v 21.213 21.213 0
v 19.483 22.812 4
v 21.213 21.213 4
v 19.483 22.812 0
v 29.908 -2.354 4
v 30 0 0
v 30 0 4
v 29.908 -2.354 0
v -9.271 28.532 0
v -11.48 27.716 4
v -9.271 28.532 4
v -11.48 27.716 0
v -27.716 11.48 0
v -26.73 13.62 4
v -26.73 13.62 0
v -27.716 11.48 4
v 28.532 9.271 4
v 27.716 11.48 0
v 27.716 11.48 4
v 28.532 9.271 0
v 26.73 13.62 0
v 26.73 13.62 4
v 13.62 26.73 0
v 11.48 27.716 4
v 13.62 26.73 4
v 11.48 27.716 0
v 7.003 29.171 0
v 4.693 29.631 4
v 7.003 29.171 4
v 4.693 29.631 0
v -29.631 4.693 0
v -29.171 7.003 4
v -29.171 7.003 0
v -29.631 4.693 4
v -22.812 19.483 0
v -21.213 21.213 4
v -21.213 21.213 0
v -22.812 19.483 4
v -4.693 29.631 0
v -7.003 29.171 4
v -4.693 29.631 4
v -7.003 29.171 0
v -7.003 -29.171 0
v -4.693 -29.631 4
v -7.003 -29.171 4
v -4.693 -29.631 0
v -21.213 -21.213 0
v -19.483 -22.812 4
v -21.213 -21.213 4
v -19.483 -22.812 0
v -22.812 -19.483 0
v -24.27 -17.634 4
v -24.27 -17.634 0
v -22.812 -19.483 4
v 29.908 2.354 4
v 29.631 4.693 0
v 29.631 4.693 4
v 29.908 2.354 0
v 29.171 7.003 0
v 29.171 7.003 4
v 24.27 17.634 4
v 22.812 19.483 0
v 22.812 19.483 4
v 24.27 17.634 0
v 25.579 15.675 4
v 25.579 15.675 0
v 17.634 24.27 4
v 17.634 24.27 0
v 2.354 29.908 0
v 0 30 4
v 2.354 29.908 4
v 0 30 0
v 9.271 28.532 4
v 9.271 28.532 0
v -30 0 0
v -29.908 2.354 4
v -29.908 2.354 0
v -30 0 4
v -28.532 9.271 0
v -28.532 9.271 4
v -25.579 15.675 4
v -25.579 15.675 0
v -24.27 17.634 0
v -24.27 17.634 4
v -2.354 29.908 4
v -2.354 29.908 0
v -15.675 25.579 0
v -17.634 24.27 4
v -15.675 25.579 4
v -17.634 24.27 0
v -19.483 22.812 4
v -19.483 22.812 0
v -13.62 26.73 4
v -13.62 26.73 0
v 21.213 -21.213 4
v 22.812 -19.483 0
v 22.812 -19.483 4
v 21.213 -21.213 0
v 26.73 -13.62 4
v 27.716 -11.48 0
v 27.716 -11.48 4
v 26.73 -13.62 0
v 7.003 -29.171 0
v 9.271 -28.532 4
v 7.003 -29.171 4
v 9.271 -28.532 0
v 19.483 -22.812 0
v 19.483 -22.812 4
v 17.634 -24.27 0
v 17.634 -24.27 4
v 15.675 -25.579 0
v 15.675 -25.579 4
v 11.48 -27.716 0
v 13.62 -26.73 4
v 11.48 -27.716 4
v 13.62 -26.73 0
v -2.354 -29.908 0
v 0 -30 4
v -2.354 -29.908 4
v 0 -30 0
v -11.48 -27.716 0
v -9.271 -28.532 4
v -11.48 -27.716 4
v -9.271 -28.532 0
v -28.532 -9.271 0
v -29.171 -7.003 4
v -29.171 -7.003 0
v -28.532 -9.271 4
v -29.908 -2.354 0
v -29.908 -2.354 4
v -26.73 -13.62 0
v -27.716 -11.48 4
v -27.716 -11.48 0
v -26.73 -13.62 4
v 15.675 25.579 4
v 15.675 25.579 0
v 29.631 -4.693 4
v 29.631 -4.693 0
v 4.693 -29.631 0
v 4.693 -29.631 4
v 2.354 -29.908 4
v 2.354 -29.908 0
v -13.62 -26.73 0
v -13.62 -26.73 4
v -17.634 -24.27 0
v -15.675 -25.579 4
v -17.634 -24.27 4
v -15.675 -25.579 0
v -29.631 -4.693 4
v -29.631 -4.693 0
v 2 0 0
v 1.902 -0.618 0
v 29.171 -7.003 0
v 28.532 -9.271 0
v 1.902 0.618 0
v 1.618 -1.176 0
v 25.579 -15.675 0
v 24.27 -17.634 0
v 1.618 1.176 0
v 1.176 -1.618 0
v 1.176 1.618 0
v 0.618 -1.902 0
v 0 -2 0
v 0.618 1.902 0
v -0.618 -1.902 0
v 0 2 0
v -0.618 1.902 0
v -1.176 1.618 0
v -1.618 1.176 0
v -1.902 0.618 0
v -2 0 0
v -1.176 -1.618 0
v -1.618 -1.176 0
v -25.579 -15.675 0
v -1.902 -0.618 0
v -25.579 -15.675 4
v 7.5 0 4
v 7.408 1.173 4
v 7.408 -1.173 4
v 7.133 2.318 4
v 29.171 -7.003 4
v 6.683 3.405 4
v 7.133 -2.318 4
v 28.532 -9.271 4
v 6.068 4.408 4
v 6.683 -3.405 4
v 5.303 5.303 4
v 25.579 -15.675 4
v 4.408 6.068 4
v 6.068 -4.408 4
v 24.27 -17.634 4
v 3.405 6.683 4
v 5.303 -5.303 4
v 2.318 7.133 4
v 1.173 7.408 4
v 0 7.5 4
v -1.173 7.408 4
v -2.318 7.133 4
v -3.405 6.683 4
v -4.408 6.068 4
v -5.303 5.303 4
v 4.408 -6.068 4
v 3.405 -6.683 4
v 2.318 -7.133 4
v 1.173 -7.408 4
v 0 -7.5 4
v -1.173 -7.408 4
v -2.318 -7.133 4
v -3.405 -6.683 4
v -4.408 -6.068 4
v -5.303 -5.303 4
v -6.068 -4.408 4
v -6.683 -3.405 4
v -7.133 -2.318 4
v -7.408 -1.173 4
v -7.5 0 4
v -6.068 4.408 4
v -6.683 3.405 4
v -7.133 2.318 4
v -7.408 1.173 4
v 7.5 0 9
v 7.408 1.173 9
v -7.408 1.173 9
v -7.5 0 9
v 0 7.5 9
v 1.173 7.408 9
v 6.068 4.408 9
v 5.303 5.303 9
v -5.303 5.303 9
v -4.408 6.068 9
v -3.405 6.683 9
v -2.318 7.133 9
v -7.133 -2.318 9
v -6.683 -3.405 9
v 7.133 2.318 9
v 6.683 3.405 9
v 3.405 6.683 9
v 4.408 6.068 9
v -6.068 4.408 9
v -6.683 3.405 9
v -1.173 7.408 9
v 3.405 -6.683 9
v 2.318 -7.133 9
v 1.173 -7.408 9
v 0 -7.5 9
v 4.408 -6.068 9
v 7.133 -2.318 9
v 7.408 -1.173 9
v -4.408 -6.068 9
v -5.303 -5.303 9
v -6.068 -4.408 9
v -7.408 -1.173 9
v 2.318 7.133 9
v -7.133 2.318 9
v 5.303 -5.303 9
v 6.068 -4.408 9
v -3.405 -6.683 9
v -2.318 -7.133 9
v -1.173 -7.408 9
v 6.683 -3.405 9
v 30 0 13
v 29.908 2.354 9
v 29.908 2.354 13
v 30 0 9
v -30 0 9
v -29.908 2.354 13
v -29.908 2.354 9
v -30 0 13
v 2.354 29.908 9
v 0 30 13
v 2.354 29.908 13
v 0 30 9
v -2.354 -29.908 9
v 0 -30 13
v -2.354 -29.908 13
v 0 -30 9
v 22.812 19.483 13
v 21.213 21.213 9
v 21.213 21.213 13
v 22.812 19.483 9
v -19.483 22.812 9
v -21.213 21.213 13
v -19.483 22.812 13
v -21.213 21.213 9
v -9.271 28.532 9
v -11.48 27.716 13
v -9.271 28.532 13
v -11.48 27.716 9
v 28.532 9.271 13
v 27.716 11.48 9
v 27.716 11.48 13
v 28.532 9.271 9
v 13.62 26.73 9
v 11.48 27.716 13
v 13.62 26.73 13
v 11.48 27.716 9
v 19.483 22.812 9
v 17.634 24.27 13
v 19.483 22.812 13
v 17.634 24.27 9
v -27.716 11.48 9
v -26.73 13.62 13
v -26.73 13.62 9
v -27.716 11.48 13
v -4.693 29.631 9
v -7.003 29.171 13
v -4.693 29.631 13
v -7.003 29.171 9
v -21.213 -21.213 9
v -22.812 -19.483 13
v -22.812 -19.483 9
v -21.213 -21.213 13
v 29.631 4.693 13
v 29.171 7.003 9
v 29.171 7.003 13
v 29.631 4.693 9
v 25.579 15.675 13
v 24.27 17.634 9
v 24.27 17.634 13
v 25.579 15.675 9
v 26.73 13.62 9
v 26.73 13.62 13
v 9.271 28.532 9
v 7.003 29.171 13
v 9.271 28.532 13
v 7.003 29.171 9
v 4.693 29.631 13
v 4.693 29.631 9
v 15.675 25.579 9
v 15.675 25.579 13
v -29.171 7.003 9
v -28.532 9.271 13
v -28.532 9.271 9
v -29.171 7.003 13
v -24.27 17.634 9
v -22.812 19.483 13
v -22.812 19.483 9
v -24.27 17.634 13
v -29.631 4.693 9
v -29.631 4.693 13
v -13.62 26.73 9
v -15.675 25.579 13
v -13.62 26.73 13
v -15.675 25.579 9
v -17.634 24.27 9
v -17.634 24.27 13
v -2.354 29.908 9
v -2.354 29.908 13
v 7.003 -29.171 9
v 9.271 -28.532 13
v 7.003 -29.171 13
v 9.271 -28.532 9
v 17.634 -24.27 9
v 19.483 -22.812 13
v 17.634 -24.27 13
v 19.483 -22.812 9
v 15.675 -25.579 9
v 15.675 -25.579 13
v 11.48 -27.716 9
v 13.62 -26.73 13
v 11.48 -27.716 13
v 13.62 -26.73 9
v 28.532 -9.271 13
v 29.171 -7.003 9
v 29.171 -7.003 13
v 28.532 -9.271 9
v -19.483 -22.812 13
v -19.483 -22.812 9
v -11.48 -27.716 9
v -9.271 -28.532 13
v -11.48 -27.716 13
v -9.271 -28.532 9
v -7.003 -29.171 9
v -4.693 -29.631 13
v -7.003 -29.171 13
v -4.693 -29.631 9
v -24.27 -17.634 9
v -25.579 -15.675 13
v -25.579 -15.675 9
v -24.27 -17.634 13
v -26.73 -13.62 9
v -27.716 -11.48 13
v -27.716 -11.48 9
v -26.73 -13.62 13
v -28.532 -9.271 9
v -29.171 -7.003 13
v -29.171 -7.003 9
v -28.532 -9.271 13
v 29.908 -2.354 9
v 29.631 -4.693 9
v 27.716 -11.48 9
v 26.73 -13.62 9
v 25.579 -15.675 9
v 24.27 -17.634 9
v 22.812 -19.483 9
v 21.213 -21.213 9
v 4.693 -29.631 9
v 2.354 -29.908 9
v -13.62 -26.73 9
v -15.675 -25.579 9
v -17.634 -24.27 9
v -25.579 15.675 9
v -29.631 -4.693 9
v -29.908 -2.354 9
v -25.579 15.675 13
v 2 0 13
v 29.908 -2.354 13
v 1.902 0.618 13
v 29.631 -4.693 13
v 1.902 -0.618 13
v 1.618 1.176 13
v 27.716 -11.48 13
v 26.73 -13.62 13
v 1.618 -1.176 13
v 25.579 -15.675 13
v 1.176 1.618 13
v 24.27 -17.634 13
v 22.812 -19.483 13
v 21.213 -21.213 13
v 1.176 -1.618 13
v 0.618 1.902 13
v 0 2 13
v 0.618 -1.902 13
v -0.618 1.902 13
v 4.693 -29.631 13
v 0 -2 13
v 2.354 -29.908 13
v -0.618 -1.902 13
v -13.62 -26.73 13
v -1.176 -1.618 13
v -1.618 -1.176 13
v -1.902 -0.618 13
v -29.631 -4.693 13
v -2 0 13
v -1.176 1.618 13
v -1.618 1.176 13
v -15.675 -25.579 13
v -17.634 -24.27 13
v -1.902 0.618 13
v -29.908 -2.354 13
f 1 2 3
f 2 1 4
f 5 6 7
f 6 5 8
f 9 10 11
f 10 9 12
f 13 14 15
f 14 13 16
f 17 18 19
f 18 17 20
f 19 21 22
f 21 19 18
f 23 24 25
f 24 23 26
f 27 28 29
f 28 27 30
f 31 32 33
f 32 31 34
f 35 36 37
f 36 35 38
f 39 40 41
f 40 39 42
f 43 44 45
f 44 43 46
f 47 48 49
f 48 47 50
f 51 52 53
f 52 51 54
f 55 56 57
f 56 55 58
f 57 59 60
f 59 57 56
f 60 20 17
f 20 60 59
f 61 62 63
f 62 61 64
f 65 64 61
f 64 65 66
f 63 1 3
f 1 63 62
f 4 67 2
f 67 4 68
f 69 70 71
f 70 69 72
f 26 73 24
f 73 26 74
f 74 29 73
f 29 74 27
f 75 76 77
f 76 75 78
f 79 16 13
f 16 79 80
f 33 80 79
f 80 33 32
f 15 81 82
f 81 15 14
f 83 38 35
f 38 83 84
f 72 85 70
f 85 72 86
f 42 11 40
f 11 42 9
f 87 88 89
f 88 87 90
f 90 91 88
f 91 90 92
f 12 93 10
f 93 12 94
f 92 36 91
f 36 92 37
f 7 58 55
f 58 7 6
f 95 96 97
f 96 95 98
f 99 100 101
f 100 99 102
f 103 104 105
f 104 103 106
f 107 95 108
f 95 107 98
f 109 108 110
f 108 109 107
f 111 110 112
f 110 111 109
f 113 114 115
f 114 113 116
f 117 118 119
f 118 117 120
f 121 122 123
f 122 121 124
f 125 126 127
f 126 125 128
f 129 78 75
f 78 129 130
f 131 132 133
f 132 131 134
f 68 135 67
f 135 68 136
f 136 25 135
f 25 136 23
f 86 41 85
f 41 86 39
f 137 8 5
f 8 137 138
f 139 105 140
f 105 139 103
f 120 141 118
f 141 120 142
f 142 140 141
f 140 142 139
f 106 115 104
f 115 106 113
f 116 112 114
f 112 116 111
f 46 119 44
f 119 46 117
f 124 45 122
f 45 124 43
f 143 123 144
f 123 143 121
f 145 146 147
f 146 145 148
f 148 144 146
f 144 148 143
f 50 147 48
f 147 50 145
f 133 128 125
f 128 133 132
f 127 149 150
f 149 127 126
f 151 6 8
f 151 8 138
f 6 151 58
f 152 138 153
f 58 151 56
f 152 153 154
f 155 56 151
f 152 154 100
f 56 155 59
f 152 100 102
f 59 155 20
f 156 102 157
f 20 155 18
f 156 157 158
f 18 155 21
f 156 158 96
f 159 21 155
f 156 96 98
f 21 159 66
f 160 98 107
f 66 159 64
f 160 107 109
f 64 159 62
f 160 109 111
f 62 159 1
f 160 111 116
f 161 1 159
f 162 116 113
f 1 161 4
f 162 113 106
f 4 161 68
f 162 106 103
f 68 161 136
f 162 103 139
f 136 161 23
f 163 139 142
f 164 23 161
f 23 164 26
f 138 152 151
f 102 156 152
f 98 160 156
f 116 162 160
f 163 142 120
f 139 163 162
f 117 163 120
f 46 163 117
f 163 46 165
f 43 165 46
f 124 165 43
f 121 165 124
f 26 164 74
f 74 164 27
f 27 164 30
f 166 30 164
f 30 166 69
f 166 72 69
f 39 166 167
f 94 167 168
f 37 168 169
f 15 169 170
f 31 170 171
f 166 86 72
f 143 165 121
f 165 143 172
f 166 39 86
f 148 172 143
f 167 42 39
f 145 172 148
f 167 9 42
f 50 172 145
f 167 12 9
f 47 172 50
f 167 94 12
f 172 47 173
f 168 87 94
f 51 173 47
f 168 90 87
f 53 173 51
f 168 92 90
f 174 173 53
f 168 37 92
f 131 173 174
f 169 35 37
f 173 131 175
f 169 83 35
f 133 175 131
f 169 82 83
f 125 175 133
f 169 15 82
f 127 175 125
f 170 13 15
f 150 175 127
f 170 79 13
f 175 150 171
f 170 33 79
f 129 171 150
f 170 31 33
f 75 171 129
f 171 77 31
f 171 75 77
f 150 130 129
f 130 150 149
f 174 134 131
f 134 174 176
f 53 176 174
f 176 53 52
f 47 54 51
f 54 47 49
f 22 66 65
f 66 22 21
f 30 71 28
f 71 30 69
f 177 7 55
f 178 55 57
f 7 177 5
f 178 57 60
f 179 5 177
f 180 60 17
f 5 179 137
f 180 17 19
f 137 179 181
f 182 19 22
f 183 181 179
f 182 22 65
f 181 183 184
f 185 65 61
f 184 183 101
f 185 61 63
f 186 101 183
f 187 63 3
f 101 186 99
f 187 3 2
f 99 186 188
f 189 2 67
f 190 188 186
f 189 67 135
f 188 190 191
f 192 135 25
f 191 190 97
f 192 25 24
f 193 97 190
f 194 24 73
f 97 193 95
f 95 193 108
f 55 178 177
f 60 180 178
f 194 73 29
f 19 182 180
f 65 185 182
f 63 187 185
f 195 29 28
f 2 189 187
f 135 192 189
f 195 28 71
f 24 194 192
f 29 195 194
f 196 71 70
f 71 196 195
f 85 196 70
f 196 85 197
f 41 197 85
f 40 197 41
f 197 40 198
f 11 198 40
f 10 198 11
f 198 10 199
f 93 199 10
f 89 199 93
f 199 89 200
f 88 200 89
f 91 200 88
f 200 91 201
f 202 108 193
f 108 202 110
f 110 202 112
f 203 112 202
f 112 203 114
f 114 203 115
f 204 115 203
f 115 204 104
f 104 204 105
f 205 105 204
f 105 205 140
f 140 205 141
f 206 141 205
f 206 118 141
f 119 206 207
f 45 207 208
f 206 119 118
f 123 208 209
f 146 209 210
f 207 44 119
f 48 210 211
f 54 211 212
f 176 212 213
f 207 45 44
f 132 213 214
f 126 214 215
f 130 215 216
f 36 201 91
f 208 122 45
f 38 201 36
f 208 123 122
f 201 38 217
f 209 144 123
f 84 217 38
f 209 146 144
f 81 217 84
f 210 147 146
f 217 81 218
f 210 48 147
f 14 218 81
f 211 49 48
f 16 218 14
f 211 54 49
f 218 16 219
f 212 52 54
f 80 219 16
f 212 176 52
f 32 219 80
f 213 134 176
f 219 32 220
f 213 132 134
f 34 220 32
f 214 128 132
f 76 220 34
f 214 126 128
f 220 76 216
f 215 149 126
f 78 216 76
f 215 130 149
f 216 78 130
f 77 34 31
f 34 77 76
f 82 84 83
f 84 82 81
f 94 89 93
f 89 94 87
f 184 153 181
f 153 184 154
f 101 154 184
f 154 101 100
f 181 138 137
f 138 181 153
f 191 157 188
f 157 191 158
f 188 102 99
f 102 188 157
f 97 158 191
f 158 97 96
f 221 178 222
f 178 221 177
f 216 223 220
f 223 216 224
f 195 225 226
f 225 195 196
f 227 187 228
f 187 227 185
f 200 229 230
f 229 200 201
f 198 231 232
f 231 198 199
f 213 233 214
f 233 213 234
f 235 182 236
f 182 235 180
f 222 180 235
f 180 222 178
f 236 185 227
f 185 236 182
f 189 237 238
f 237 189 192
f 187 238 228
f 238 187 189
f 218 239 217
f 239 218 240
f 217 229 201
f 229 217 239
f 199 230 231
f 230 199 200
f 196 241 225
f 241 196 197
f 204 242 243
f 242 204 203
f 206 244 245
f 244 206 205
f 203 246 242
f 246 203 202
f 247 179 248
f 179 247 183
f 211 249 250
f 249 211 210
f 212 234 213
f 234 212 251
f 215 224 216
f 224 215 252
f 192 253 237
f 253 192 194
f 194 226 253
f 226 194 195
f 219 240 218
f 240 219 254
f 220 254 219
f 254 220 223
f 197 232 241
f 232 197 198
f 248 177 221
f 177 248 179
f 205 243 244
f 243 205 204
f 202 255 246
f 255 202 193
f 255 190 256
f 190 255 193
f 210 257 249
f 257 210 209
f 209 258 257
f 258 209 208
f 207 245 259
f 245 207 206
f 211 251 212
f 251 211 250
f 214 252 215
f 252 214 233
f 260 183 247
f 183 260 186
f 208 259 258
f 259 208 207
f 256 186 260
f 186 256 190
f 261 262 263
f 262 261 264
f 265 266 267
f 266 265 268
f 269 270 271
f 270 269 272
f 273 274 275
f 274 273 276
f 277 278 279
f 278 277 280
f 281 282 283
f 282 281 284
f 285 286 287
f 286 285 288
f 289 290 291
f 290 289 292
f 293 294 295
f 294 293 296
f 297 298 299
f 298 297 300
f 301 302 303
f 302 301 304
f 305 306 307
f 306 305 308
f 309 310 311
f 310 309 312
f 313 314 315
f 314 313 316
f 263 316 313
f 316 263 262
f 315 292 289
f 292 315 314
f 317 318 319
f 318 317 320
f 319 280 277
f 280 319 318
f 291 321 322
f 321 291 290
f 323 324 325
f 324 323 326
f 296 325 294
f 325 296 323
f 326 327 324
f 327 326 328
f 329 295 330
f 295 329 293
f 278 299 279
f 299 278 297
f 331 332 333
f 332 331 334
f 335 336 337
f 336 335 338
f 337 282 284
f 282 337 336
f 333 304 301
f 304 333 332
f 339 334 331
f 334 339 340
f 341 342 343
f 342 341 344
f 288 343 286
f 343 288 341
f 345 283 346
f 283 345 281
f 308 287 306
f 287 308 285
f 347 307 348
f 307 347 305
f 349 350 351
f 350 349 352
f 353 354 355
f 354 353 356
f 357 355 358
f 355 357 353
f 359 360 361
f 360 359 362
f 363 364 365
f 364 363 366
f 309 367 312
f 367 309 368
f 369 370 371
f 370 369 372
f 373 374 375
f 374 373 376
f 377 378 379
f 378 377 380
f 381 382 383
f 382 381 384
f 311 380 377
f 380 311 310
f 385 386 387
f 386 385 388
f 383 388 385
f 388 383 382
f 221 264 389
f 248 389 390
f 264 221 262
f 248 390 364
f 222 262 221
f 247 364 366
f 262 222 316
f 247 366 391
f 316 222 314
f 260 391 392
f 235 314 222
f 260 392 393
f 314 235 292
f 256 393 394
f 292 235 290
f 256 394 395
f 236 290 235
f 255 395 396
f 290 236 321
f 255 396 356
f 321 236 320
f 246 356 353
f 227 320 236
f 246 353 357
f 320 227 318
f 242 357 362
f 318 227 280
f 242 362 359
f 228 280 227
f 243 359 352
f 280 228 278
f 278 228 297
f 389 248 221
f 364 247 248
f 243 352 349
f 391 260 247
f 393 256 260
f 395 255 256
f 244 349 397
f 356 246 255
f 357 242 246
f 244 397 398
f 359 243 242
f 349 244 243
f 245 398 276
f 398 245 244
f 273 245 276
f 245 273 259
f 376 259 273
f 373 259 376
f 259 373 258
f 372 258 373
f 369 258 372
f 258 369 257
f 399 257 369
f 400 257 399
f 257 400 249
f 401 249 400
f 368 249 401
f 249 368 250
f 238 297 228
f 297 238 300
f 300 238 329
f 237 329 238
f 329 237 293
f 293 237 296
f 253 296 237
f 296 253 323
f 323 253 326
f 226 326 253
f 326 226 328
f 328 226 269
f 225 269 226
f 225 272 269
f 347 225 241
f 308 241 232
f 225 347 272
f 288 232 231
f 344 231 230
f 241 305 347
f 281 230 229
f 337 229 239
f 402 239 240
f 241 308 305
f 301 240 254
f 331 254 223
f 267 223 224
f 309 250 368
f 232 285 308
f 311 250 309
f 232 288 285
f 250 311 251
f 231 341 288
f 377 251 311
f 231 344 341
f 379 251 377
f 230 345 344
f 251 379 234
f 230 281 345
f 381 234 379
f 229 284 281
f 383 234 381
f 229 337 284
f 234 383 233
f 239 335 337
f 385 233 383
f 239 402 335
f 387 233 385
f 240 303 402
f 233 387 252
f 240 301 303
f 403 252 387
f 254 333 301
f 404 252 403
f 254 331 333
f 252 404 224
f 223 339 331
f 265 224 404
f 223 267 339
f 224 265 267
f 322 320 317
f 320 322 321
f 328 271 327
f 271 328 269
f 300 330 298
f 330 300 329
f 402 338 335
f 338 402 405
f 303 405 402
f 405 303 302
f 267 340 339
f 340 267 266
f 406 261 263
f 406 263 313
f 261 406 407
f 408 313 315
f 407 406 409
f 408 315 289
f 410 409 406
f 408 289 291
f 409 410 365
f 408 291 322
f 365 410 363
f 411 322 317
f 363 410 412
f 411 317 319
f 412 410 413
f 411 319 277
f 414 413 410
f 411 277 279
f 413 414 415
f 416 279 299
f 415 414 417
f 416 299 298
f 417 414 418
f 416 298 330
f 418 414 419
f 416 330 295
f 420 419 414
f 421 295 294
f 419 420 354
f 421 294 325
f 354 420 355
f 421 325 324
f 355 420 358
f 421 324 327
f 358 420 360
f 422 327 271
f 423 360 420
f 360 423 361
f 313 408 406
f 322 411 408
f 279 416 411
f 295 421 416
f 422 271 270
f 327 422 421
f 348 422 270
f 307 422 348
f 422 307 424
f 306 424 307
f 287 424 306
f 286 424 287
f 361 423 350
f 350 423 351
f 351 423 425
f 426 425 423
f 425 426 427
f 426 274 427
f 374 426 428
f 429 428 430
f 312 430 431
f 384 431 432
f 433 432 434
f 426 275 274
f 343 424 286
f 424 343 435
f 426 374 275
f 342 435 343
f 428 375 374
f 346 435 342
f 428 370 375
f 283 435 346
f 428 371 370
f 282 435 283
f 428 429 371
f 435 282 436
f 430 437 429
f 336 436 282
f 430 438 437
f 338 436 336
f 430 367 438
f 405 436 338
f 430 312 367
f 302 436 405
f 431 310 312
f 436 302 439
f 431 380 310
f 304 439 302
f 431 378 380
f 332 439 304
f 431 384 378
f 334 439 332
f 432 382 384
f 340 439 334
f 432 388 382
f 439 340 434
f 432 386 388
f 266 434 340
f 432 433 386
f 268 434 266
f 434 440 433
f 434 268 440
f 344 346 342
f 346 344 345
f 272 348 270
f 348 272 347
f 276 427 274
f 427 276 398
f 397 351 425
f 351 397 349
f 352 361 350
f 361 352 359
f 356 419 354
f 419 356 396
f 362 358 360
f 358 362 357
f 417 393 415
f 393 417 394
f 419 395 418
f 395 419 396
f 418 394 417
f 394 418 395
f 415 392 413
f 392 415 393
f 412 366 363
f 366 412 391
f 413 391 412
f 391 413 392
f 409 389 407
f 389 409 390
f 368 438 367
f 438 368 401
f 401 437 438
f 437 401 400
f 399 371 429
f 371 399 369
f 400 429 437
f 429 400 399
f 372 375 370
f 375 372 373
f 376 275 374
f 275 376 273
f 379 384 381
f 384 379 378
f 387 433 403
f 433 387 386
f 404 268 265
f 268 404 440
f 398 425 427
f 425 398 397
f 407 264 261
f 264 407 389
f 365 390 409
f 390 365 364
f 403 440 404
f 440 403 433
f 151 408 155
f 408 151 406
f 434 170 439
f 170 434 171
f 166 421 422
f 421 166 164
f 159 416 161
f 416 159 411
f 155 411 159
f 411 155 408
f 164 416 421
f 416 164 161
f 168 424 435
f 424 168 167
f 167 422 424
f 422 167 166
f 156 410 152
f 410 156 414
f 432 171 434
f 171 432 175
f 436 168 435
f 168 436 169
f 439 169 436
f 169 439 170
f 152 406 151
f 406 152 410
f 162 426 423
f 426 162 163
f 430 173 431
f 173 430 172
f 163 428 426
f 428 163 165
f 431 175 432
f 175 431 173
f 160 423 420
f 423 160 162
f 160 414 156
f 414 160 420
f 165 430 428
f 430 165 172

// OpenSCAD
difference() {
    union() {
        cylinder(d=60,h=4,$fn=80);

        cylinder(d=15,h=10,$fn=40);

        translate([0,0,9])
        cylinder(d=60,h=4,$fn=80);
    }
    cylinder(d=4,h=15,$fn=20);
}
